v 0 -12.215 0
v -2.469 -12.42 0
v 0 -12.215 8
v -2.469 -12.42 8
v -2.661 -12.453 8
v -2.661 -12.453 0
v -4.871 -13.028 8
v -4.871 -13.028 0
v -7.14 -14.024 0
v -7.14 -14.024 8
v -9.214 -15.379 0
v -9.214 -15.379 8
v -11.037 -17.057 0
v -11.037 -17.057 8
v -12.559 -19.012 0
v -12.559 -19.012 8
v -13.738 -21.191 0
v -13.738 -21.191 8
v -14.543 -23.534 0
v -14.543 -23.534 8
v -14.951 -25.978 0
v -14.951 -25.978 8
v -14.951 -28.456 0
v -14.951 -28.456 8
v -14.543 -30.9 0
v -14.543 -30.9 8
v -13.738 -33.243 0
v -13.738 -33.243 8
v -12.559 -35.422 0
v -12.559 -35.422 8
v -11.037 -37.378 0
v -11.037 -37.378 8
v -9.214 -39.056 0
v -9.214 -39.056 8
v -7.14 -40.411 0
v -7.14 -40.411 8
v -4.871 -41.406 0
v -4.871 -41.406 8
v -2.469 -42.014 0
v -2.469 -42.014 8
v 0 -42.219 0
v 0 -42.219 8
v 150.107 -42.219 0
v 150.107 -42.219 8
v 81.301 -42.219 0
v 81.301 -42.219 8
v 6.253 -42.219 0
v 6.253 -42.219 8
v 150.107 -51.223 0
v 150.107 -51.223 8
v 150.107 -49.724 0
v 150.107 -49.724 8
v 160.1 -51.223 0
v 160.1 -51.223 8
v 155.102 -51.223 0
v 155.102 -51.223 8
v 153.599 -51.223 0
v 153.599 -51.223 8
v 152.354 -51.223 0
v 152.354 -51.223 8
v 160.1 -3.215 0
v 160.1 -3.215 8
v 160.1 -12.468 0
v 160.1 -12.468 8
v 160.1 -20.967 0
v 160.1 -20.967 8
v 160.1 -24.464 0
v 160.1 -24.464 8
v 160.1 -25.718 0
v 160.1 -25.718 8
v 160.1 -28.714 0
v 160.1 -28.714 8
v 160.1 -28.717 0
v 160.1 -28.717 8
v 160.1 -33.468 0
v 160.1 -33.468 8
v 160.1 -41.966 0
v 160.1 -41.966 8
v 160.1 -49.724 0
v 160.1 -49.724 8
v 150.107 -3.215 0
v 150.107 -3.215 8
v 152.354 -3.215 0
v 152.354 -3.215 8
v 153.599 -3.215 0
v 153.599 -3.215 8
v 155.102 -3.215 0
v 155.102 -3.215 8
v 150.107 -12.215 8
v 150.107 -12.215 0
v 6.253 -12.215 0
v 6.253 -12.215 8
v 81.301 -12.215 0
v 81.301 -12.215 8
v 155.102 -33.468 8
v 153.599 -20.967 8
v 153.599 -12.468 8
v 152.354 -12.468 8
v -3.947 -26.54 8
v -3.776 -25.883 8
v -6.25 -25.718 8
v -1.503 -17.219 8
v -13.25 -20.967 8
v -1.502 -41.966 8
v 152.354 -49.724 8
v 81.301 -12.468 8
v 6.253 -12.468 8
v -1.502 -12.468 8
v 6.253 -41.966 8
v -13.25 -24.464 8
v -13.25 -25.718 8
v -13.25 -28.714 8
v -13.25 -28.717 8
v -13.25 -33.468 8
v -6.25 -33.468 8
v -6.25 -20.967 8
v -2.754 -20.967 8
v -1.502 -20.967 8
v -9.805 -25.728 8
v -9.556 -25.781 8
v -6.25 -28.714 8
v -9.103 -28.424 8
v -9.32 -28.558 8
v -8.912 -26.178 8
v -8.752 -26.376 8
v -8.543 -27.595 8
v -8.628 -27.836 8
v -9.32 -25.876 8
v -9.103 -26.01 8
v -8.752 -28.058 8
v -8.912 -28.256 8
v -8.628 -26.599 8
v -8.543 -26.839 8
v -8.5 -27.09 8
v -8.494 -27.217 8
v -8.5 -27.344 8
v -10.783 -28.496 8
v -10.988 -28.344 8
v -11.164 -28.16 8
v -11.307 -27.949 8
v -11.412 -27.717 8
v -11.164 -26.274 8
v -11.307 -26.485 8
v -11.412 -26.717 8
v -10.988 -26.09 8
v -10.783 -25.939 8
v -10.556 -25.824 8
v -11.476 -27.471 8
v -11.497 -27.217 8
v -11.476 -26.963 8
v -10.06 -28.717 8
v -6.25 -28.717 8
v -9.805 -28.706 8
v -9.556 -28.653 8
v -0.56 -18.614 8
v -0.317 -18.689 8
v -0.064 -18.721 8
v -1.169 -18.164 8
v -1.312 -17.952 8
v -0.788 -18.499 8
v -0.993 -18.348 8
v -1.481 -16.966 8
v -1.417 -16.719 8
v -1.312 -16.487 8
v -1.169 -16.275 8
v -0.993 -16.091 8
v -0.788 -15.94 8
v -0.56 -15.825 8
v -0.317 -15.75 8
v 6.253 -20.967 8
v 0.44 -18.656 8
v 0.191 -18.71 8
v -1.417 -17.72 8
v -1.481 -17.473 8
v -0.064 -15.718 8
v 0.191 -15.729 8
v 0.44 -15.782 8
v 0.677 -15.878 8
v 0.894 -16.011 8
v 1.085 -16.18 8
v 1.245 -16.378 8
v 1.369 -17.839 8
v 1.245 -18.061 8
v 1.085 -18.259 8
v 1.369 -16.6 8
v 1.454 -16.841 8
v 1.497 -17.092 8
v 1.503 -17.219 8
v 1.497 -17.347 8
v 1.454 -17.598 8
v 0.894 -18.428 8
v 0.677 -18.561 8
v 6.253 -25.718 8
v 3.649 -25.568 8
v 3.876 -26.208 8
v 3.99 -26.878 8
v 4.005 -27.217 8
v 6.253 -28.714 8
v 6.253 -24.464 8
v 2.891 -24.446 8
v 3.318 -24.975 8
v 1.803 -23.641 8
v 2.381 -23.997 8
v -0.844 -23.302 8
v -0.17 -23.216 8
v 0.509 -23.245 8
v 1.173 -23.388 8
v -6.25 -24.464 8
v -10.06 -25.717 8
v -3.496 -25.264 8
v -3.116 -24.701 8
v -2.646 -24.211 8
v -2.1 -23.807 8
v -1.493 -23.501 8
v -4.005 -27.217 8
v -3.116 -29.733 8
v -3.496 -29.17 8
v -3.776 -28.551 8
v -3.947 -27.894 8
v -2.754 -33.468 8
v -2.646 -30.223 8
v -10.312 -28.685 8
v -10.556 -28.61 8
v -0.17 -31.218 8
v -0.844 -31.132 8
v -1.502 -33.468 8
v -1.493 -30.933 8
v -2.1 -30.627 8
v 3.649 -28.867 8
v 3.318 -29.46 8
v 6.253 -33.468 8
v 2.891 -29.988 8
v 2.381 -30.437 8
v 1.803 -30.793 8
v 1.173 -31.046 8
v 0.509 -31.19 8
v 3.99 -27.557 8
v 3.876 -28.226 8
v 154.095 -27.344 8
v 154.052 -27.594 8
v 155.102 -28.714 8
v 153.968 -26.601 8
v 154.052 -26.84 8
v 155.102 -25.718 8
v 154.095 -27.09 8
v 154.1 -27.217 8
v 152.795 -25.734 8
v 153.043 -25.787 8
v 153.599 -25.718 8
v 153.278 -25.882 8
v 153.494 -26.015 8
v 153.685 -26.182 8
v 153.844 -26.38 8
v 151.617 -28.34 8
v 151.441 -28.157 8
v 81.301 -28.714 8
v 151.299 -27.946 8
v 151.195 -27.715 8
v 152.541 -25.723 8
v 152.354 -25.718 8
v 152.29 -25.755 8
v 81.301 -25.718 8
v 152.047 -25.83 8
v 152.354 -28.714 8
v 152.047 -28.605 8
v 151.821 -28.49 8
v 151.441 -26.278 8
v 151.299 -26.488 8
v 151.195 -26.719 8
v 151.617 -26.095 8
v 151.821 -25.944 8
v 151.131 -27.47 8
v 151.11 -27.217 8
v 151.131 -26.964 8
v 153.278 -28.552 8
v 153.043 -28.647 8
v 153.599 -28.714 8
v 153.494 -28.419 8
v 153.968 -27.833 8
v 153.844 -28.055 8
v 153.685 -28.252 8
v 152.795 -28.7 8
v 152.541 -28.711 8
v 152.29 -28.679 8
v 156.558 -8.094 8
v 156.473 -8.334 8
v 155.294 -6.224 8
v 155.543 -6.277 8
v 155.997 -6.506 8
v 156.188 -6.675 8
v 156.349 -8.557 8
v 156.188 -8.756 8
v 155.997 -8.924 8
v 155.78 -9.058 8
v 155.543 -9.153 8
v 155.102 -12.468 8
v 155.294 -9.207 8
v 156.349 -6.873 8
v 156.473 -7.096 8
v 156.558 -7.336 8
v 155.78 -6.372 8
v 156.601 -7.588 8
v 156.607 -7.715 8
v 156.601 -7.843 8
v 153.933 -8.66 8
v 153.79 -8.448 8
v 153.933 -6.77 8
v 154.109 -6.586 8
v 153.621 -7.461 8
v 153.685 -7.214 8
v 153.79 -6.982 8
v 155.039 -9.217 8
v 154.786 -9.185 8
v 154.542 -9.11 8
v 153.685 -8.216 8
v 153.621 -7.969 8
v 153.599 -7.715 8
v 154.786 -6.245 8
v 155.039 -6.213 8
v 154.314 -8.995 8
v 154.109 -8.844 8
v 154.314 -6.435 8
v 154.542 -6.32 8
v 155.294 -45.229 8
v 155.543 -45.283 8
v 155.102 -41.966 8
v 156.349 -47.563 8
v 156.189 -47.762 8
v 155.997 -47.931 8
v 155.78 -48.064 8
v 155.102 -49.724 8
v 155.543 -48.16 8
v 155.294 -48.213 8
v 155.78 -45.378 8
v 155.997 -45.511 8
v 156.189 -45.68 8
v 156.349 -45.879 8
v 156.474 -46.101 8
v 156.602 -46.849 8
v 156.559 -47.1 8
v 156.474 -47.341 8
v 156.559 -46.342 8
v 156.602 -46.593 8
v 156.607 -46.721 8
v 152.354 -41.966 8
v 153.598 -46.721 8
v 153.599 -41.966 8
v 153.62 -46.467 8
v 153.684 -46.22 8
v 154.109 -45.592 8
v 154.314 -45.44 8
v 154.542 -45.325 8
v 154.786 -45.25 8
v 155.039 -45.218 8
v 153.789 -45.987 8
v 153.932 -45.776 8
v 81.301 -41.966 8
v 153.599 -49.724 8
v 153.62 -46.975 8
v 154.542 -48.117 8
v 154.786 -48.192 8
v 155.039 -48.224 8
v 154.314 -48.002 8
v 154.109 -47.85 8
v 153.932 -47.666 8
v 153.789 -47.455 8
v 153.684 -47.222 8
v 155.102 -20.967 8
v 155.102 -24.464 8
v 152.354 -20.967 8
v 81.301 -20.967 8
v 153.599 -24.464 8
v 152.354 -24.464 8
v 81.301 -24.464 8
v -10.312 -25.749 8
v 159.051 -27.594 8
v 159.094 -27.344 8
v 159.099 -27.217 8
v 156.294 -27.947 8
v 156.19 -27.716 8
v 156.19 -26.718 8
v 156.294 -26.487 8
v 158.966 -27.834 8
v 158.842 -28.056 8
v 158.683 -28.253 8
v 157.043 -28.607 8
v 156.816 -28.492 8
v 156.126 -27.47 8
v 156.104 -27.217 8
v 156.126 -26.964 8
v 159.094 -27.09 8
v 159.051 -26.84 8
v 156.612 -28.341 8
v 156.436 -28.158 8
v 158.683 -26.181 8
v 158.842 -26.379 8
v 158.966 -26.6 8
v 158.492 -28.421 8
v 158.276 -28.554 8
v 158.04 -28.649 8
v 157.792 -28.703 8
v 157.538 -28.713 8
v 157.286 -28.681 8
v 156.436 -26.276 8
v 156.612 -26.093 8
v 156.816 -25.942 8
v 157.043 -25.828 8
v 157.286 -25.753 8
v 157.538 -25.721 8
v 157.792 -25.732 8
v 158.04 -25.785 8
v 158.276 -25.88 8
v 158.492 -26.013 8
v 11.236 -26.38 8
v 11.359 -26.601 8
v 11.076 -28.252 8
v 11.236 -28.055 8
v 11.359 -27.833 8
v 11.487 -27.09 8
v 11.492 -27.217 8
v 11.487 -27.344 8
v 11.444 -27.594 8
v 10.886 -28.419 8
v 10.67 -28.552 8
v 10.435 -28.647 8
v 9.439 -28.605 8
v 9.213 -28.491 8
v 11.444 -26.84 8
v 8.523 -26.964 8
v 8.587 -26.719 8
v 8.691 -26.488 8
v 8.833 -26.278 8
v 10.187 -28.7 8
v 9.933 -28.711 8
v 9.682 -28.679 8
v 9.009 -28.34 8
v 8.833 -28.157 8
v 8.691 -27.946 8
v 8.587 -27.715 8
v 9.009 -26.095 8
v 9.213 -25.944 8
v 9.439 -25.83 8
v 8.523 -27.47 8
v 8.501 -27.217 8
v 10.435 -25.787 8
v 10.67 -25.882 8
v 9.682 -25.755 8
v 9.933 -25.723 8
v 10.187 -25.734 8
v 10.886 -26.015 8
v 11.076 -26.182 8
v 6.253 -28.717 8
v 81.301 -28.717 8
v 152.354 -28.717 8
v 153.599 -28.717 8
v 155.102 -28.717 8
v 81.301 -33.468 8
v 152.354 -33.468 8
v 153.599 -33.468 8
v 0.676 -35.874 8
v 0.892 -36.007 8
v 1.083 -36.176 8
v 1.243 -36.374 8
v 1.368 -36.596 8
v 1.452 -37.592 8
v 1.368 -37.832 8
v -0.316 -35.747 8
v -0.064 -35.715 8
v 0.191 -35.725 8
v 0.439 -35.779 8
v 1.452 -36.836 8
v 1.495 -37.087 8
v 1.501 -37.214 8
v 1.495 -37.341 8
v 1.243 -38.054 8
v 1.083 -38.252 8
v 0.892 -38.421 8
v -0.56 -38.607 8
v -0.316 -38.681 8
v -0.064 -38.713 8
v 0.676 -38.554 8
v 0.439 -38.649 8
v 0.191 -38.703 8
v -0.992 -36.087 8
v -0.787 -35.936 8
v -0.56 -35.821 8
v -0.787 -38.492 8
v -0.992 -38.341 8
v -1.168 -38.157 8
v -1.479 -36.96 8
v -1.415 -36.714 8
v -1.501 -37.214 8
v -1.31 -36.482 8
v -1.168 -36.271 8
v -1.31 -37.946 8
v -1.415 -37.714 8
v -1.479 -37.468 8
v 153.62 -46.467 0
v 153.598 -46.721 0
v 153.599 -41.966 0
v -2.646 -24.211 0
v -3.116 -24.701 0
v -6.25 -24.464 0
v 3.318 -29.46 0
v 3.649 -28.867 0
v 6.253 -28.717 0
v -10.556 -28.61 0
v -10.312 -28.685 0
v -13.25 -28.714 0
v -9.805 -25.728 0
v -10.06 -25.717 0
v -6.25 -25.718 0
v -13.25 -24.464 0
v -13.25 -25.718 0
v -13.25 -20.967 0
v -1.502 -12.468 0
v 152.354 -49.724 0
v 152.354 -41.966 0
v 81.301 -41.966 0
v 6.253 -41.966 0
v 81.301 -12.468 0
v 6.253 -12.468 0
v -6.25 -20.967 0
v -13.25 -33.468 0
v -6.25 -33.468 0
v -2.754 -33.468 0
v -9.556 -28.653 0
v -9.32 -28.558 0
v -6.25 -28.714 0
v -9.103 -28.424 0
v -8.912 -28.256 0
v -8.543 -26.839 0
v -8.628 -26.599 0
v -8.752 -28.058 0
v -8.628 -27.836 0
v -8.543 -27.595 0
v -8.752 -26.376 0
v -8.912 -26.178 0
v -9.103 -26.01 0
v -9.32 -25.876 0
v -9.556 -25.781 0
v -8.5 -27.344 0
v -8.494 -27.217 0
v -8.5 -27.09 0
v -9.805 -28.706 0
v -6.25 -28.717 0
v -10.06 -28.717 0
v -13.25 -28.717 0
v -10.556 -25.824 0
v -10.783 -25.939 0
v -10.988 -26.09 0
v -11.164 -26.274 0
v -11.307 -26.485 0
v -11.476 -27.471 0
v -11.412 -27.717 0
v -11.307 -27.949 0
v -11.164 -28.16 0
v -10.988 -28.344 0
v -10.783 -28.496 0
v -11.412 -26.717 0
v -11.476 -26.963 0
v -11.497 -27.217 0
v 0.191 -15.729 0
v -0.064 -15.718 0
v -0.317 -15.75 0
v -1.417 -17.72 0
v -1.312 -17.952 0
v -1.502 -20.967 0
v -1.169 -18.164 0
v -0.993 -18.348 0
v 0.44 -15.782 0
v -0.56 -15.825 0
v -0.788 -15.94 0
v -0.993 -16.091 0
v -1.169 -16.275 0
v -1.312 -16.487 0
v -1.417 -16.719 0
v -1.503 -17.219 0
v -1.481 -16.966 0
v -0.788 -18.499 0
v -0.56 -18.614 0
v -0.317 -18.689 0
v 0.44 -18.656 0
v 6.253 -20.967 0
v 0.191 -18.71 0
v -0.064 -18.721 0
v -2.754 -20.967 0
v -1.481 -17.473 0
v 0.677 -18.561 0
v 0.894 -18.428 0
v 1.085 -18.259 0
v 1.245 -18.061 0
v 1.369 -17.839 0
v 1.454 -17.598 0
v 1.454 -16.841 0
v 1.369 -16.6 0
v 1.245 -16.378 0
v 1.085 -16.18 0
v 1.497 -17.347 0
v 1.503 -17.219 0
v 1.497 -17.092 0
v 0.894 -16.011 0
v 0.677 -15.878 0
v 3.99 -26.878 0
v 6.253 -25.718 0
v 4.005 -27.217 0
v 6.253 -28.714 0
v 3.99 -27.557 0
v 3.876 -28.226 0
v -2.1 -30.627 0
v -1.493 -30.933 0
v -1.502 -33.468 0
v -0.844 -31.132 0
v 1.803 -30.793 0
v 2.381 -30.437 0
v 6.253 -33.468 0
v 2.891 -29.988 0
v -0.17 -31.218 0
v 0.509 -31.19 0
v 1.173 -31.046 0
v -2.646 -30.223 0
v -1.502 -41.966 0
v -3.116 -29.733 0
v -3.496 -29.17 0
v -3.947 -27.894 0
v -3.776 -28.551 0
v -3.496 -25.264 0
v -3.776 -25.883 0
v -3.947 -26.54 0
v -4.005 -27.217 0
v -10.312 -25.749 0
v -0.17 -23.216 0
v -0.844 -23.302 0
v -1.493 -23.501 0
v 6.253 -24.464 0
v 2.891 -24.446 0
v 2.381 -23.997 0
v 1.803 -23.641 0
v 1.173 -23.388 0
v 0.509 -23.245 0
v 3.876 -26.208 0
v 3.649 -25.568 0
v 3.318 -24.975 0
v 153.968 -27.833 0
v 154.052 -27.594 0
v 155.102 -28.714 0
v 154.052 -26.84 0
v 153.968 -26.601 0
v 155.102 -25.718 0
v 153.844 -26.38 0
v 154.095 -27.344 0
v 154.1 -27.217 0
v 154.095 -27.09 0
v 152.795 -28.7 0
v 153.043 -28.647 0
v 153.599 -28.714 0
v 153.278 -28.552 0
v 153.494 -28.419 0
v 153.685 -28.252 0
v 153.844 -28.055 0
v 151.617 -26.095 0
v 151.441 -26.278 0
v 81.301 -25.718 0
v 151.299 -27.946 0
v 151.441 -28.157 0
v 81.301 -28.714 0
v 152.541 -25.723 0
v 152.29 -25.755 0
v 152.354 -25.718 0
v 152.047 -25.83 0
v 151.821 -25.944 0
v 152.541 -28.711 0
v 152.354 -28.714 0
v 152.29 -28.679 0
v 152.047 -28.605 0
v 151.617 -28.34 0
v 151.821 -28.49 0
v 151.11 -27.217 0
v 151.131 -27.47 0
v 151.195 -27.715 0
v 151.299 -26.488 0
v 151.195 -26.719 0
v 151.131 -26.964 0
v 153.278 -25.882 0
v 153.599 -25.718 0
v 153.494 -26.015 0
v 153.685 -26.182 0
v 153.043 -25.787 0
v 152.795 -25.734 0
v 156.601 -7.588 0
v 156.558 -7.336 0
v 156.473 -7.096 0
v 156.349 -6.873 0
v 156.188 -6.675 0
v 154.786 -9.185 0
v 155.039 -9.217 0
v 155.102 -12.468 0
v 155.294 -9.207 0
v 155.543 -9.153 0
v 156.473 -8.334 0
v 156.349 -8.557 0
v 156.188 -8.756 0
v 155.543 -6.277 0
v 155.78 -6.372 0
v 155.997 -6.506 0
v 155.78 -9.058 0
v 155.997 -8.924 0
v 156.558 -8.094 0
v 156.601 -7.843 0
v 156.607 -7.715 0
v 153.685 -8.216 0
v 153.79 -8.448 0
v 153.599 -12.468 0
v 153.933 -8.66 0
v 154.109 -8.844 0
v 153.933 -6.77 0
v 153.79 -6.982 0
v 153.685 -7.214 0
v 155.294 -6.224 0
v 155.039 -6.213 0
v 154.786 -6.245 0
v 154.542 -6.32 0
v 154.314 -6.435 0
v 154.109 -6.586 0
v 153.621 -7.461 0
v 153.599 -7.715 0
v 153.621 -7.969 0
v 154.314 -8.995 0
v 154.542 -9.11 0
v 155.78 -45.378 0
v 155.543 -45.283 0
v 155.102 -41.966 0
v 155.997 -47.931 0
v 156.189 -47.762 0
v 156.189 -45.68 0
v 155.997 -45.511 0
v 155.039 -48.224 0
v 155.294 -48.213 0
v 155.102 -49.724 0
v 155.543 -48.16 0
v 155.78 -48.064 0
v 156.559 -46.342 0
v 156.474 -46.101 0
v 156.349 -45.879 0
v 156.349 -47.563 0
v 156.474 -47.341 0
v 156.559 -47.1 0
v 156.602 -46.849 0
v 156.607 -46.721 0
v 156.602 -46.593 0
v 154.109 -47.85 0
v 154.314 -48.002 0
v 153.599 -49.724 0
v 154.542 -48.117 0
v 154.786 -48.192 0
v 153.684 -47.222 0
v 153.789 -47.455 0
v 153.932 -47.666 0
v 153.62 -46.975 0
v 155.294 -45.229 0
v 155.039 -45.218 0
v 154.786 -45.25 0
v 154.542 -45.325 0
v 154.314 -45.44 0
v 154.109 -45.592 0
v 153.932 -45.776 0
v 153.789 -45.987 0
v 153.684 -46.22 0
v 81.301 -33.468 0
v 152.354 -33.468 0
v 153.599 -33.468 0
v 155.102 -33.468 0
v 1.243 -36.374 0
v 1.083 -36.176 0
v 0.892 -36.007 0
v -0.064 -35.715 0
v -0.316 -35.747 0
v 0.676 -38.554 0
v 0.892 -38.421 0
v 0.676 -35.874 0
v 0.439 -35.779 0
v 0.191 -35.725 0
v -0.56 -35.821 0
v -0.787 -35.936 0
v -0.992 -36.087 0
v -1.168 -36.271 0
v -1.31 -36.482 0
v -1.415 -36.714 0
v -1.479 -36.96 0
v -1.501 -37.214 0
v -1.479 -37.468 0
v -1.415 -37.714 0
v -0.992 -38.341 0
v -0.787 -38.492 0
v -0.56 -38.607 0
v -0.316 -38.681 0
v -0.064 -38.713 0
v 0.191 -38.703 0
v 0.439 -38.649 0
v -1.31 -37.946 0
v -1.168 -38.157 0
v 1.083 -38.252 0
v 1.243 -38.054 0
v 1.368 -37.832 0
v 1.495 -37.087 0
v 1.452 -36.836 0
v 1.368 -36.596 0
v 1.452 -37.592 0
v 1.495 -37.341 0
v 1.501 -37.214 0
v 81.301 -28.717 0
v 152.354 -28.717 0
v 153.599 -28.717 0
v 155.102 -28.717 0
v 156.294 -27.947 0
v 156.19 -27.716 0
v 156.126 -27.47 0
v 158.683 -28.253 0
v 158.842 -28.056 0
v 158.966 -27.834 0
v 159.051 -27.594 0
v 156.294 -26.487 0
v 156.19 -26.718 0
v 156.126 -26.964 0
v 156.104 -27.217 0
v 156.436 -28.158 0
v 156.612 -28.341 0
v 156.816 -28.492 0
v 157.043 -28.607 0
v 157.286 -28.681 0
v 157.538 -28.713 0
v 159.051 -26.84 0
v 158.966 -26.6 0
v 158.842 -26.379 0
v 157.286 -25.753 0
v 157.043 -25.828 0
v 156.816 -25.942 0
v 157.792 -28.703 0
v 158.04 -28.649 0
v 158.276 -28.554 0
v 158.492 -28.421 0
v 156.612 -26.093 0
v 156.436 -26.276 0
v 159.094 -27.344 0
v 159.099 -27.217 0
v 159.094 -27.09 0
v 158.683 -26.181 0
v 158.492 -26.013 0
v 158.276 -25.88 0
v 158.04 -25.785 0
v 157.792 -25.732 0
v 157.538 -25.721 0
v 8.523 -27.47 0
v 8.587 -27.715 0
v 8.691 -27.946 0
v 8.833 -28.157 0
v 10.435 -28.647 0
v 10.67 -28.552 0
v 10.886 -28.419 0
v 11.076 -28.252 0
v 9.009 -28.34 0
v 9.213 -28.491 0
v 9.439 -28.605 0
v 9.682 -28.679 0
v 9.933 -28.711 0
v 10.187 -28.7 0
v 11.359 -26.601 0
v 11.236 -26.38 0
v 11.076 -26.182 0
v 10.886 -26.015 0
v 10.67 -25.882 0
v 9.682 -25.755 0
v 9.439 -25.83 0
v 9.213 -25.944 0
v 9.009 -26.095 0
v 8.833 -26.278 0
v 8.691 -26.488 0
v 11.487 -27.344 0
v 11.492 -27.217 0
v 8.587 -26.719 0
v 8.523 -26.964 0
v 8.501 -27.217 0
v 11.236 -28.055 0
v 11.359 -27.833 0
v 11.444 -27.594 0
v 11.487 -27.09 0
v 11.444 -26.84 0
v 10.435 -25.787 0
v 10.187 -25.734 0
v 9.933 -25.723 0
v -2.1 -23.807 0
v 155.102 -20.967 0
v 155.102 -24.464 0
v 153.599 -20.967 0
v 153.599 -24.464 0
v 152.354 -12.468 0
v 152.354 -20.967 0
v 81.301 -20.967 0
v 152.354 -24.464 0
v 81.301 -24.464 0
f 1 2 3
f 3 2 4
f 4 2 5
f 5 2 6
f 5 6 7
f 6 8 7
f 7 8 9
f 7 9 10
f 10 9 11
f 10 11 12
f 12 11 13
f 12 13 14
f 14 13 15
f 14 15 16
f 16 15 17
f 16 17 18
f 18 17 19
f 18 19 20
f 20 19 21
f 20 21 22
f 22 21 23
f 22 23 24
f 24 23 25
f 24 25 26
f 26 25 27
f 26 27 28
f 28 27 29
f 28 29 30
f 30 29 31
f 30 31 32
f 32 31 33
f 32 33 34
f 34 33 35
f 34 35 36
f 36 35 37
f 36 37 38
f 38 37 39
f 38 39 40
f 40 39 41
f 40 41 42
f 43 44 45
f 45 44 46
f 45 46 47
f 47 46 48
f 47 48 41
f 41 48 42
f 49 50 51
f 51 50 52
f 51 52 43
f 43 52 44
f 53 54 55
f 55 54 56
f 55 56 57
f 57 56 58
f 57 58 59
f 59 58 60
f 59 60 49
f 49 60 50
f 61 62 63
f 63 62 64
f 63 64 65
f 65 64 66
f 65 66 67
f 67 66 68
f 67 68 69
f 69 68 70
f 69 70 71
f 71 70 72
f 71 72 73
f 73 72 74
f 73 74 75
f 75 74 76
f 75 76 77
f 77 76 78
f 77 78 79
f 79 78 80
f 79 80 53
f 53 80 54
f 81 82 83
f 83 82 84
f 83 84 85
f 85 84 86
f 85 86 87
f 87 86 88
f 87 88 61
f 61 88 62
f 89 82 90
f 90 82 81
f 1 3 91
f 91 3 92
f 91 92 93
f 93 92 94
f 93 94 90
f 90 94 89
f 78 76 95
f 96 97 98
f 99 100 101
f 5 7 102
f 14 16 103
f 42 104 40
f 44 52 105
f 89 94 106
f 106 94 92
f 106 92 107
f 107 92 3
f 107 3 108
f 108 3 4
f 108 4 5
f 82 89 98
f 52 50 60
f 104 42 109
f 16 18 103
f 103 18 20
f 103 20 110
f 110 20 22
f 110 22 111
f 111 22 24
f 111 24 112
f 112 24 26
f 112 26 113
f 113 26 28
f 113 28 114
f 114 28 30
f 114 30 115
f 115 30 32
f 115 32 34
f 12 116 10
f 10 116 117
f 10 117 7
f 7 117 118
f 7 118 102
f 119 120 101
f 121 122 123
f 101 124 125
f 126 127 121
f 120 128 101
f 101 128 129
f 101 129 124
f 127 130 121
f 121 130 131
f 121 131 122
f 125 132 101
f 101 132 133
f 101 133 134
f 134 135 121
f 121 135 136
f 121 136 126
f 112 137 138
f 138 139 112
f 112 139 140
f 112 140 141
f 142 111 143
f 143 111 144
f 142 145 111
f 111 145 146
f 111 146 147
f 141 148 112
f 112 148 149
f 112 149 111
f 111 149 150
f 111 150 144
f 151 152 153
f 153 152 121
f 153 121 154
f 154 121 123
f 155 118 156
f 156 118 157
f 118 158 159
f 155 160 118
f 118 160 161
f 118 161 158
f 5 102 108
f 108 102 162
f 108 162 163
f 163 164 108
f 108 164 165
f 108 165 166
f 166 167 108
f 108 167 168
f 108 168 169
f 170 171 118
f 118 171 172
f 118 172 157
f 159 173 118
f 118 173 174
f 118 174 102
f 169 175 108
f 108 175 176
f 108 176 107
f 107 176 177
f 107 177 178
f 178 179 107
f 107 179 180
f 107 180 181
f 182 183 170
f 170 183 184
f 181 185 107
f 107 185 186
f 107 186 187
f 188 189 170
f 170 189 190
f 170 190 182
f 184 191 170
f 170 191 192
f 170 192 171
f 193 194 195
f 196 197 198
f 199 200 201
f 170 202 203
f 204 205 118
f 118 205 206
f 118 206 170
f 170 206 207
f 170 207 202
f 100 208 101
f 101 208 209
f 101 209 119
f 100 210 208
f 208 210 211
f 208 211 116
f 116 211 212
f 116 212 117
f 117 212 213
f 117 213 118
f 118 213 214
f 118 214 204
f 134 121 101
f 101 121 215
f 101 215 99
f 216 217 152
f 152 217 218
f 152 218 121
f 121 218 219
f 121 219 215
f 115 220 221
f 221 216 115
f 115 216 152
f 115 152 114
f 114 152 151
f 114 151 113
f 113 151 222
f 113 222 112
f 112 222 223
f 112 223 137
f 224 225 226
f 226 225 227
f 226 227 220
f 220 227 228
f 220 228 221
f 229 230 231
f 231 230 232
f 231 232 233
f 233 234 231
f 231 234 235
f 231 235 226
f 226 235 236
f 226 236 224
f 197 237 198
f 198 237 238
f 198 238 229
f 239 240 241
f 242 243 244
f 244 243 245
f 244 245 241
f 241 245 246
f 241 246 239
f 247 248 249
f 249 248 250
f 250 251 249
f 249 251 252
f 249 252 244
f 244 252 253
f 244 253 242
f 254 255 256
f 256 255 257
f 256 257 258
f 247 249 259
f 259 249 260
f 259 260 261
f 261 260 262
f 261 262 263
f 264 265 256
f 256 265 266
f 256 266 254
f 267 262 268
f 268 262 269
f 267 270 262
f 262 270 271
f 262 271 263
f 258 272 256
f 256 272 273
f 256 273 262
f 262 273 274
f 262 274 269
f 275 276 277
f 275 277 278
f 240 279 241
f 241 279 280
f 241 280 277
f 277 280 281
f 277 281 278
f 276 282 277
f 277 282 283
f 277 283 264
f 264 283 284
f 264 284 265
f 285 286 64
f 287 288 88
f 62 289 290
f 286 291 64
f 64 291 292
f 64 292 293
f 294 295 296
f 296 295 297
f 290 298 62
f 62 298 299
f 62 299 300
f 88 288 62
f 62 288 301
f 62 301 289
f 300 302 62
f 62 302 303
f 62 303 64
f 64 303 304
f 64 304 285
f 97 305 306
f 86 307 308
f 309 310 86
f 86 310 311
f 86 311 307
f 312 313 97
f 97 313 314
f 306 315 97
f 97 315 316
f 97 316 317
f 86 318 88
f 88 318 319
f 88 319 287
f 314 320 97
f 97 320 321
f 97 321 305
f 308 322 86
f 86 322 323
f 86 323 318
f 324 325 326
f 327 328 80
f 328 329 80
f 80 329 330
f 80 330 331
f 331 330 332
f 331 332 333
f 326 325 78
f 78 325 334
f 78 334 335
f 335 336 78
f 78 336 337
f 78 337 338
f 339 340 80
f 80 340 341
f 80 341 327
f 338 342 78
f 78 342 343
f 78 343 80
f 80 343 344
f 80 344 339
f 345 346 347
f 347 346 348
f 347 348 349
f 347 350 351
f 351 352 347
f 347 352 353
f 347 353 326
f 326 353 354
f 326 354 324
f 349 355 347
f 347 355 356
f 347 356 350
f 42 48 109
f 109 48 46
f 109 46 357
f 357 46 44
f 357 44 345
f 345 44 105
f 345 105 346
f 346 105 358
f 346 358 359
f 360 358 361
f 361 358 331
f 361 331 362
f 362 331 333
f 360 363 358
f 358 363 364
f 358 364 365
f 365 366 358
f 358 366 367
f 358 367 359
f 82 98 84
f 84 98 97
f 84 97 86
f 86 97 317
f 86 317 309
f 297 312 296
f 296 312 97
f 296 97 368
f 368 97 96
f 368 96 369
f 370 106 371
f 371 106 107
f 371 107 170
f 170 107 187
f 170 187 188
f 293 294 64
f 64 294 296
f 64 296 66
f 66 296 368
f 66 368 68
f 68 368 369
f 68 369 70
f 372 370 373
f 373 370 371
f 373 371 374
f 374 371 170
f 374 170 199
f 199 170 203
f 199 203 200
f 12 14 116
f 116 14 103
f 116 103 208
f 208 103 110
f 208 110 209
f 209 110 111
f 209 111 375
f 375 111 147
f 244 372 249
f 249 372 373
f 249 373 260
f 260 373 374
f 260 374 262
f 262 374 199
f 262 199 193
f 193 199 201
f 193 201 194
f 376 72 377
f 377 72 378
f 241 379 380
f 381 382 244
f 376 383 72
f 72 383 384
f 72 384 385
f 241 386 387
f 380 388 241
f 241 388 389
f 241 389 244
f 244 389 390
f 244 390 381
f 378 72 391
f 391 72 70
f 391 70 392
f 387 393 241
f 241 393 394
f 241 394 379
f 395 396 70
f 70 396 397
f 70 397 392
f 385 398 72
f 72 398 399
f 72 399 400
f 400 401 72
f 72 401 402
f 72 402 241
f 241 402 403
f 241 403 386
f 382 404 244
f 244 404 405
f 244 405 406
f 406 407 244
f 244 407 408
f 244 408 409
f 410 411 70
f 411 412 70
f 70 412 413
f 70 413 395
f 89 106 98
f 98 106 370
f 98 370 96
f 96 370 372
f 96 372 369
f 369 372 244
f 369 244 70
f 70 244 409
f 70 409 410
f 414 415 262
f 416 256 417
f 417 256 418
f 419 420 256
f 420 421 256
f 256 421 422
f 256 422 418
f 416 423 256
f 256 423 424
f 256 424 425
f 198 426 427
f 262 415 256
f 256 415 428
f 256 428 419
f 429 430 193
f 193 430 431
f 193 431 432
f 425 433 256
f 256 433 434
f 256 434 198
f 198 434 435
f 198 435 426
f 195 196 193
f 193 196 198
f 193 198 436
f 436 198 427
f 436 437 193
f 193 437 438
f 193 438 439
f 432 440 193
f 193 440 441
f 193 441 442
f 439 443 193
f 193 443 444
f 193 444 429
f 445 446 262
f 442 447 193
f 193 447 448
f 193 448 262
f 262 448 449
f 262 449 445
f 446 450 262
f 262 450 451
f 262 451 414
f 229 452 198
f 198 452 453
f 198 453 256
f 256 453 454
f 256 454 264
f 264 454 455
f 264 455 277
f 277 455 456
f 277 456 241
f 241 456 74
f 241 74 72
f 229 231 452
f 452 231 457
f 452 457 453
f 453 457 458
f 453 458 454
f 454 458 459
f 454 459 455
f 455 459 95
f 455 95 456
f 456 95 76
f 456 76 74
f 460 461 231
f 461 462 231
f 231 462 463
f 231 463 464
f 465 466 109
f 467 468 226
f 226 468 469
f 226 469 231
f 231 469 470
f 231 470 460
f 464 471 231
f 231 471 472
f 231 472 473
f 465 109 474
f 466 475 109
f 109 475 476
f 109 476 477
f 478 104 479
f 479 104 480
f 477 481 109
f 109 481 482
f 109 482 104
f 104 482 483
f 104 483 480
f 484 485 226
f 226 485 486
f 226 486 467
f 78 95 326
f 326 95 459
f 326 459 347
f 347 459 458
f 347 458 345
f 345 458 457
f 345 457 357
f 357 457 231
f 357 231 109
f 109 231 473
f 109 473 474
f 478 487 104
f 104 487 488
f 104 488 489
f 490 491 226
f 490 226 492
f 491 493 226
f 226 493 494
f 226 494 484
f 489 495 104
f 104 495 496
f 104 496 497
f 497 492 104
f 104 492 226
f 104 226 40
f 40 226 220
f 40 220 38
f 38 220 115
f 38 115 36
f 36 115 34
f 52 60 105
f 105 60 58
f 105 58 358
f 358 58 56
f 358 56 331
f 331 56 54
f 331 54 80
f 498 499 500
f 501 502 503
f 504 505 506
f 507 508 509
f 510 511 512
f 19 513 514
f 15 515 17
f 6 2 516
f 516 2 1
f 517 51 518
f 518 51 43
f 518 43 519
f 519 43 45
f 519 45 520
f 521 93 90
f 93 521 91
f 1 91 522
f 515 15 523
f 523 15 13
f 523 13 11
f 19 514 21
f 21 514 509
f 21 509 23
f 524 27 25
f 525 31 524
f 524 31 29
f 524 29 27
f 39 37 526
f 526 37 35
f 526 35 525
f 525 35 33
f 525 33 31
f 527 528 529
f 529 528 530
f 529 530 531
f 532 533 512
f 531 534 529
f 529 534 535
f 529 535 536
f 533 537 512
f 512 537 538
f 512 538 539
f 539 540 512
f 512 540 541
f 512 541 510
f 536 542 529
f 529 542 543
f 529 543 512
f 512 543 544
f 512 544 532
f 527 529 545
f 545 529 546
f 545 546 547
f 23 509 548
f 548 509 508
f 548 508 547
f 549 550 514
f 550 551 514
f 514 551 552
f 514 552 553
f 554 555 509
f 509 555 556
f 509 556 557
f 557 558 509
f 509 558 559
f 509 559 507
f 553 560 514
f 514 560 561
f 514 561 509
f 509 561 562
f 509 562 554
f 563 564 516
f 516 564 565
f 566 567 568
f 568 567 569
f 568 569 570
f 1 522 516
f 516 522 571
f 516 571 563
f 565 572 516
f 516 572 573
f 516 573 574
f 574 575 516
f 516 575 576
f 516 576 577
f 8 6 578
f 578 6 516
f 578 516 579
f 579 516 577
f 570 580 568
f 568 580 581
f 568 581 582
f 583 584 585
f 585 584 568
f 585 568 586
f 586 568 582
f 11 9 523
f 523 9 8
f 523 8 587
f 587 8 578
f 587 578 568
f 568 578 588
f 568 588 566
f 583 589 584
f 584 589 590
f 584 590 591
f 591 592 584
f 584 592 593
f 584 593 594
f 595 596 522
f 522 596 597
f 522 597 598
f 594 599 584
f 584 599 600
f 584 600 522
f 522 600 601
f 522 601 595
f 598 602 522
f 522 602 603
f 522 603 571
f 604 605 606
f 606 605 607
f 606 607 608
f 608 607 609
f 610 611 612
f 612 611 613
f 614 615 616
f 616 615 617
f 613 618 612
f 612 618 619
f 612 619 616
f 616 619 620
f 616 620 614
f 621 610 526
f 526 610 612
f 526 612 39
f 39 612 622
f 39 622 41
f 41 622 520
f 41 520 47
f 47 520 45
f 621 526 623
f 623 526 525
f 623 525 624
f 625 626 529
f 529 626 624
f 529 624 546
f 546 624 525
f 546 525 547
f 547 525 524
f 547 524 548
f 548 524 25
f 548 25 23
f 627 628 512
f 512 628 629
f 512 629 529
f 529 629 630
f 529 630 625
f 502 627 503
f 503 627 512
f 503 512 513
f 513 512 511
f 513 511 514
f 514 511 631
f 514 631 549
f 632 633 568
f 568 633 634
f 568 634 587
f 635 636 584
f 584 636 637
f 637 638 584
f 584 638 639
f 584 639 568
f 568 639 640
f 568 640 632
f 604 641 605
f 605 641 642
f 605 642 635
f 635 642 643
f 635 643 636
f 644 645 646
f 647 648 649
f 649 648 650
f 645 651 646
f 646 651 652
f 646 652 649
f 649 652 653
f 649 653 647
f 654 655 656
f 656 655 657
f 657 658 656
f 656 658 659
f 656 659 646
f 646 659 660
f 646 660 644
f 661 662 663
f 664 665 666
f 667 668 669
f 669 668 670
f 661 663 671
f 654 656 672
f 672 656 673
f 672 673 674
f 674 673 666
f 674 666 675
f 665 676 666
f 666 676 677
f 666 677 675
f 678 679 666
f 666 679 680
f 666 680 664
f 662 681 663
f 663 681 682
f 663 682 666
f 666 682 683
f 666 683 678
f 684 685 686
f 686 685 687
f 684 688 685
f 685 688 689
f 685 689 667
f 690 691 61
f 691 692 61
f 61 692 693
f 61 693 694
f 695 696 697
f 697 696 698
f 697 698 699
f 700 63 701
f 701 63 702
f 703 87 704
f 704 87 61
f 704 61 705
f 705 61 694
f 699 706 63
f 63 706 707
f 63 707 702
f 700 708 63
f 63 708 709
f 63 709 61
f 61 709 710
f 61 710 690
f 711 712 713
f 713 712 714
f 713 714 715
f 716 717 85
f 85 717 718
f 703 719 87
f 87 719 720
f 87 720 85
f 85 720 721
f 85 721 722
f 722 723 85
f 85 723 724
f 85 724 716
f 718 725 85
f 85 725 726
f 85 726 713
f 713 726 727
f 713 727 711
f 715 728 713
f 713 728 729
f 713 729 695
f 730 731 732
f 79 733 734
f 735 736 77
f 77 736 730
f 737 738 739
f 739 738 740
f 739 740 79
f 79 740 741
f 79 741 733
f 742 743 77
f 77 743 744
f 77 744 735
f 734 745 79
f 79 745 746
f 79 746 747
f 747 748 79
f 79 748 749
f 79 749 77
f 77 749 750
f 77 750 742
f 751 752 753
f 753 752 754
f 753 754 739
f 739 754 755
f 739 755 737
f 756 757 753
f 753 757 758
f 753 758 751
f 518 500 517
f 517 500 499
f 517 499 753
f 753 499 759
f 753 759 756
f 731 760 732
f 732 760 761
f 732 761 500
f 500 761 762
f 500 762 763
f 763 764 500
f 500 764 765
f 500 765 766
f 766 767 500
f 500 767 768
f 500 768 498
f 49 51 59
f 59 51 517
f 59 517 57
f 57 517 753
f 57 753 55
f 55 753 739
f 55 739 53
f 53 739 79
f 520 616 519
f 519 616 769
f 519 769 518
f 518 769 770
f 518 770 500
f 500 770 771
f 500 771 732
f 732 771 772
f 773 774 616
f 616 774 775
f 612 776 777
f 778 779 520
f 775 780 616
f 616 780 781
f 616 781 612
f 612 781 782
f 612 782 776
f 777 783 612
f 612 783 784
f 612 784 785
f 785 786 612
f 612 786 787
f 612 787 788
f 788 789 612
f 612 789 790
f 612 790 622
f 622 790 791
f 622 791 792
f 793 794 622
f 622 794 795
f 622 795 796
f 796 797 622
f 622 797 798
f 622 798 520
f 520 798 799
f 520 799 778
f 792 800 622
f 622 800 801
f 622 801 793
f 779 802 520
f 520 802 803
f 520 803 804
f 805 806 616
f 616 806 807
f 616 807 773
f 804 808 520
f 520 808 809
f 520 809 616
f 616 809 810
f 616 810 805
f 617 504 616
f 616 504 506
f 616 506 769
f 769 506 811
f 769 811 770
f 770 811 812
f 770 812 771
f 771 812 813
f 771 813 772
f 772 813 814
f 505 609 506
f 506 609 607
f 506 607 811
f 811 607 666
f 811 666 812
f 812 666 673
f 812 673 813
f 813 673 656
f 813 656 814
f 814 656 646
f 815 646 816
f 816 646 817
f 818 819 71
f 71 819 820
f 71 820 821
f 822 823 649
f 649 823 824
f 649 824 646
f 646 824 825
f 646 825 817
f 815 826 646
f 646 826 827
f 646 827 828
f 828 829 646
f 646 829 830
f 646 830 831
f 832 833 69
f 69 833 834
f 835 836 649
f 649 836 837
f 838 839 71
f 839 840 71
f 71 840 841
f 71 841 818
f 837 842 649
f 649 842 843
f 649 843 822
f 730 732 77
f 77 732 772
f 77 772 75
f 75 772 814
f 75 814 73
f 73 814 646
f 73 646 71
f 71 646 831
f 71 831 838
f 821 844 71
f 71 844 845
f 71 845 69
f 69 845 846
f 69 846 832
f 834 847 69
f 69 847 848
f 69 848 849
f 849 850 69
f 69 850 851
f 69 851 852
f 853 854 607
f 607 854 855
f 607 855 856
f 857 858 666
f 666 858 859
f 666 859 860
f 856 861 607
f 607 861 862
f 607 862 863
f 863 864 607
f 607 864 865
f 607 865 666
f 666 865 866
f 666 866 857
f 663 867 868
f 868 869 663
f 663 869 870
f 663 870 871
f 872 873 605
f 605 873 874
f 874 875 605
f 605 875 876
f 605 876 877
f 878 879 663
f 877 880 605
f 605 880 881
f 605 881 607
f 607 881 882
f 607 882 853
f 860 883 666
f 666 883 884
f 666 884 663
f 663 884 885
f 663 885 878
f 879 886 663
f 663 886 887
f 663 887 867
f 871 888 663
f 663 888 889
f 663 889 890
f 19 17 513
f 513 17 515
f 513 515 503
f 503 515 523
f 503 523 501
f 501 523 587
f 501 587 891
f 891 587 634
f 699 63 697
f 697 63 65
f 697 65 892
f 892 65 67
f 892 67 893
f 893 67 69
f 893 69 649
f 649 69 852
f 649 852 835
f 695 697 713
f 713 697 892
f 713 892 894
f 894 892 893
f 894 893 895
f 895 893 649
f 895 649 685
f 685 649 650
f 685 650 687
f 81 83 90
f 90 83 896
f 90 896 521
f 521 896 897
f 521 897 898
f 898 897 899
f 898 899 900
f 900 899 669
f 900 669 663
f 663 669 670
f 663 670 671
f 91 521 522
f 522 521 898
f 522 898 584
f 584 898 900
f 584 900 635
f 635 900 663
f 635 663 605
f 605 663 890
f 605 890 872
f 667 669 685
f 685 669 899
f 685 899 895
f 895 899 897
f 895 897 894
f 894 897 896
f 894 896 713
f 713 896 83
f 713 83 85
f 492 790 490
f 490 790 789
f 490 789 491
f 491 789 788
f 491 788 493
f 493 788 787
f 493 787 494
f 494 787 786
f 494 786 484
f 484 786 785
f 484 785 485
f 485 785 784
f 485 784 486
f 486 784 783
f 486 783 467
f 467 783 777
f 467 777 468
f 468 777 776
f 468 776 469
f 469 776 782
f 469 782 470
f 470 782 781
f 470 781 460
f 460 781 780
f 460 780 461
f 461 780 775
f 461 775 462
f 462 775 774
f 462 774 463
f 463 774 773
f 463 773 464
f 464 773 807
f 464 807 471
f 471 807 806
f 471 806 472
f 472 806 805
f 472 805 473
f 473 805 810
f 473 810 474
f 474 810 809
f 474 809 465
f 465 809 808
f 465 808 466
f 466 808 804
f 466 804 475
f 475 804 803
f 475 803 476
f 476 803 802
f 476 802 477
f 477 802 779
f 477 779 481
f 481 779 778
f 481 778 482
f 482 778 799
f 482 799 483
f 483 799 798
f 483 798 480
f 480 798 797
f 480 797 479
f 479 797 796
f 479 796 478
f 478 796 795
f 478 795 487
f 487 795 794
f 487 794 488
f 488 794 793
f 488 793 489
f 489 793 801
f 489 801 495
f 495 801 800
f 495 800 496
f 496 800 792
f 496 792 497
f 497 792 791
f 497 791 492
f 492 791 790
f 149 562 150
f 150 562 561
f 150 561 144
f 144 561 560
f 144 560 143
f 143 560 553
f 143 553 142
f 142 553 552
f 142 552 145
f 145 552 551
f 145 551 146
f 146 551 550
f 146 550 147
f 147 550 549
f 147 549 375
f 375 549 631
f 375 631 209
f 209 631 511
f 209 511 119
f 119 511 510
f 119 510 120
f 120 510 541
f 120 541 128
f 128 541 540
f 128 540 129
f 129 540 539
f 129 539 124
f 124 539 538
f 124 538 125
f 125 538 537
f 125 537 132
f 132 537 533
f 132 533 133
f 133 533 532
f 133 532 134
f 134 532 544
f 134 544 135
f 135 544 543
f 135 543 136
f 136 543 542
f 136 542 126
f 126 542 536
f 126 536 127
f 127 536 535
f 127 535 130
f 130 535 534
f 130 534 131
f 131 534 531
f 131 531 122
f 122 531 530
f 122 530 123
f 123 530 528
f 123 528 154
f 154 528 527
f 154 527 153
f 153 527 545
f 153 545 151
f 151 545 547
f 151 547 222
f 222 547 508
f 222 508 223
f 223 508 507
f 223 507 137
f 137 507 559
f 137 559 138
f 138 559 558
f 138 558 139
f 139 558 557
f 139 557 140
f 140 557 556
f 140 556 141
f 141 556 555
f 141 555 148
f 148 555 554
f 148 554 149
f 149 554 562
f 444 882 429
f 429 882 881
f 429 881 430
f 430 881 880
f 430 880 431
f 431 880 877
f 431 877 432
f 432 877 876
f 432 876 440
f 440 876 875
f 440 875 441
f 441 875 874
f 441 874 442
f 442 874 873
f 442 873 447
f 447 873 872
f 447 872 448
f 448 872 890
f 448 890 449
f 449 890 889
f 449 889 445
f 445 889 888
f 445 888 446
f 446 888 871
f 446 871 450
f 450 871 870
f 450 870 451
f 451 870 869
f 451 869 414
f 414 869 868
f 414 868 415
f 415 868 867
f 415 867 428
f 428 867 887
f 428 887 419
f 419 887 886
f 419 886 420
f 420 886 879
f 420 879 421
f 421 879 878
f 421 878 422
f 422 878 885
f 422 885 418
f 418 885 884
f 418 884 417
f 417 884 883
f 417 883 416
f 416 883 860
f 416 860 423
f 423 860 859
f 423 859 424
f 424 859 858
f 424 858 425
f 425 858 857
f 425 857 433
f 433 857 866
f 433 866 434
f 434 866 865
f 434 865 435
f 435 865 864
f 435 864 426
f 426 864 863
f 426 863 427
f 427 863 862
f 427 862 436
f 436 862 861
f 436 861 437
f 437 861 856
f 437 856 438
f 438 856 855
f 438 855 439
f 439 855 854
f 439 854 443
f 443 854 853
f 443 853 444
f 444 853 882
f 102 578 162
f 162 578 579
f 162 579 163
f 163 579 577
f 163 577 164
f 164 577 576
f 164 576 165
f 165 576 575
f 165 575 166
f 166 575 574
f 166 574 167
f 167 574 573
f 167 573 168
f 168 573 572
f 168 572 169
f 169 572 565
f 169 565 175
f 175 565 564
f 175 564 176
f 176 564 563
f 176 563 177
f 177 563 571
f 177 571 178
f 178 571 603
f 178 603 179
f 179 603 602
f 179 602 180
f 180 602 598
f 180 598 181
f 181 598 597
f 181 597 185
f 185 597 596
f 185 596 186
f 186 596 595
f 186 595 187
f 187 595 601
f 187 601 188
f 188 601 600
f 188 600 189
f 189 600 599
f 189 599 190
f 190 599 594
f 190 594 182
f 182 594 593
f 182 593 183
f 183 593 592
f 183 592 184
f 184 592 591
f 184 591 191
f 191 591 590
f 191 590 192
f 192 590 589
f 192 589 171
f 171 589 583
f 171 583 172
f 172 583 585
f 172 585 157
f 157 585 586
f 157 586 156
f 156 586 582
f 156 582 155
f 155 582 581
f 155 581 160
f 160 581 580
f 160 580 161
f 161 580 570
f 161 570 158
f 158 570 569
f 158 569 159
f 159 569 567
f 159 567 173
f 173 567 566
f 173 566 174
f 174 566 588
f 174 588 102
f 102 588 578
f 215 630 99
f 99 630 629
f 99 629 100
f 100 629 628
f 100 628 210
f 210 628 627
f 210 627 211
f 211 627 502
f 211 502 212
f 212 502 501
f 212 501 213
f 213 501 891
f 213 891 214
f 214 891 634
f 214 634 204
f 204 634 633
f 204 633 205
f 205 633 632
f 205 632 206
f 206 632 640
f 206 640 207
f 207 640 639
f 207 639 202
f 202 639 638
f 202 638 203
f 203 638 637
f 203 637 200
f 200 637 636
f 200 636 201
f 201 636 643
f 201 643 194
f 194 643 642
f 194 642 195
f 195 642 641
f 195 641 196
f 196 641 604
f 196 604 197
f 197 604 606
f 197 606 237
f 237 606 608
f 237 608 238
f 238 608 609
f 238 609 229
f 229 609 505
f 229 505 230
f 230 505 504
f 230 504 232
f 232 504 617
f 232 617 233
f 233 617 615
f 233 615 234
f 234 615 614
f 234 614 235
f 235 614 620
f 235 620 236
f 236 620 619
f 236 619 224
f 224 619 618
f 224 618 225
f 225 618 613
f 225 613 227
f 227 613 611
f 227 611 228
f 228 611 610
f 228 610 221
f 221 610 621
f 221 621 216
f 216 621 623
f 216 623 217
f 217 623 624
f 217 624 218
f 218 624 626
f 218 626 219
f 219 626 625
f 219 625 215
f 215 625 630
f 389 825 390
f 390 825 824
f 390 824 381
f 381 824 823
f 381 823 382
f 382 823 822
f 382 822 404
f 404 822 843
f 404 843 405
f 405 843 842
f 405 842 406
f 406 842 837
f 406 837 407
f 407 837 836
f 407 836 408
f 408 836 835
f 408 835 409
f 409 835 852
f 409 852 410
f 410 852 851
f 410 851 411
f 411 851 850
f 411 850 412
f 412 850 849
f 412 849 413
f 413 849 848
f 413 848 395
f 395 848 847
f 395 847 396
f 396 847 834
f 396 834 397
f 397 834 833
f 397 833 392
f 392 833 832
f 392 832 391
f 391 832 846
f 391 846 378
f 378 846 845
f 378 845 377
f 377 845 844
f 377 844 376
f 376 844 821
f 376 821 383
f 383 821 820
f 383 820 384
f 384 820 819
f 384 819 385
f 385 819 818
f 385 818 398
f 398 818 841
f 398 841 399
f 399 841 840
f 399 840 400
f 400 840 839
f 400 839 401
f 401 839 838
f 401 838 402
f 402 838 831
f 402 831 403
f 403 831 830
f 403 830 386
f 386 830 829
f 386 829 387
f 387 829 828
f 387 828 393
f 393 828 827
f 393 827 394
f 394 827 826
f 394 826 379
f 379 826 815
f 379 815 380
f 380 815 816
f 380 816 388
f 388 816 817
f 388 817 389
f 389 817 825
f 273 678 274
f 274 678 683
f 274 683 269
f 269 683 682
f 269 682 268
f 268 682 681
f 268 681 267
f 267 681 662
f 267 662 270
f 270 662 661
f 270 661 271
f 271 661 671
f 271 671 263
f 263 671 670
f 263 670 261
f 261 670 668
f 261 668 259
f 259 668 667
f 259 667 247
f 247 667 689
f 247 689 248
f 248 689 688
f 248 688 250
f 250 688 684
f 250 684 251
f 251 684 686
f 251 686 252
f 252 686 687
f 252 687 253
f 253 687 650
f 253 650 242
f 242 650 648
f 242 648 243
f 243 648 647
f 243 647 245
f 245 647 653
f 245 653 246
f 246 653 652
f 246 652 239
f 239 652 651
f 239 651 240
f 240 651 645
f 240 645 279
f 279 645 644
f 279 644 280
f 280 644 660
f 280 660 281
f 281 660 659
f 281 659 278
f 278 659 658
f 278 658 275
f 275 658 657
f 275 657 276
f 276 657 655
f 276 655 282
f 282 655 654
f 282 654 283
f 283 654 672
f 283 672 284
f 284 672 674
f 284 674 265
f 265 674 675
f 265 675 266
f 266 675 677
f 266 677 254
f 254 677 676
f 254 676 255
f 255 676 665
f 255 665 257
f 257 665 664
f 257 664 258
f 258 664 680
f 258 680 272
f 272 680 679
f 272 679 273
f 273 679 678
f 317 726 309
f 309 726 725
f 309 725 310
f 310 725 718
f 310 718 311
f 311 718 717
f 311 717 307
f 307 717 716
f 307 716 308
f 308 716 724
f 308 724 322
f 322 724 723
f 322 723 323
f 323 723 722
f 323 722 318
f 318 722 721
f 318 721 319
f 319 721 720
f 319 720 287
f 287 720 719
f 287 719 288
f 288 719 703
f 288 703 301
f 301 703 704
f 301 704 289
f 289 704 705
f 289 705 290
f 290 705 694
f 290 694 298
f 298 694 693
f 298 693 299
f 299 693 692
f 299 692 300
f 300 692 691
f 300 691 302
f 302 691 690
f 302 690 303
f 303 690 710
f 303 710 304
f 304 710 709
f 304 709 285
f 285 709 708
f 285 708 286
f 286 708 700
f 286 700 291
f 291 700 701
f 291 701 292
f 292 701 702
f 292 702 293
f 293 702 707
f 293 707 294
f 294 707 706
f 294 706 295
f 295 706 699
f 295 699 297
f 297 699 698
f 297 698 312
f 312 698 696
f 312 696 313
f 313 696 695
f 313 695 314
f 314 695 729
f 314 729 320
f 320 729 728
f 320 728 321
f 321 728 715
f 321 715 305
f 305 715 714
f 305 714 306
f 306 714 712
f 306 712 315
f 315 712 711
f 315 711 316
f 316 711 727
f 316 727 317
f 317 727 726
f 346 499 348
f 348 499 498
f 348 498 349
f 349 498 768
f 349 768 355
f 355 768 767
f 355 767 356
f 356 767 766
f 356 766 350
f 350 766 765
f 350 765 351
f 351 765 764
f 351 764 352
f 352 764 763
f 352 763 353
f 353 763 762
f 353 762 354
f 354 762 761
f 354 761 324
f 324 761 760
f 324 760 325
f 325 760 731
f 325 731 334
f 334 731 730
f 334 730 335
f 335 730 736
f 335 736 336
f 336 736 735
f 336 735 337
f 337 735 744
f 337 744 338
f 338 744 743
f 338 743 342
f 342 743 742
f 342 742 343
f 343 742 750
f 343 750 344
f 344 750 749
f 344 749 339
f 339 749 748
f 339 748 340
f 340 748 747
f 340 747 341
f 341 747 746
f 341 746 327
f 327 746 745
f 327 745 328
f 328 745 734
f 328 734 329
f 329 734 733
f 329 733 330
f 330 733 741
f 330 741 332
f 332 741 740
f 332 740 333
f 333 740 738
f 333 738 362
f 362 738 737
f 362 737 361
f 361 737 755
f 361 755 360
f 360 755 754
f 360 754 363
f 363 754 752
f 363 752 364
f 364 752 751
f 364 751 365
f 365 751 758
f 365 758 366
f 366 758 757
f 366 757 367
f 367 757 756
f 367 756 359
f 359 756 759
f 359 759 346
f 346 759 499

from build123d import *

# Parameters (mm, degrees)
BOSS_EXTRUDE1_DEPTH     = 8
CUT_EXTRUDE6_DEPTH      = 169.285043392
CUT_EXTRUDE6_DEPTH_BACK = 8
SKETCH6_R               = 4.004848267
SKETCH6_R_2             = 1.500740619
SKETCH6_R_3             = 1.502884449
SKETCH6_R_4             = 1.495453733
SKETCH6_R_5             = 1.501499852
SKETCH6_R_6             = 1.504449493
SKETCH6_R_7             = 1.503694776
SKETCH6_R_8             = 1.495371025
SKETCH6_R_9             = 1.497490914


with BuildPart() as part:
    # Sketch5 → Boss-Extrude1 (new body)
    with BuildSketch(Plane.XY):
        with BuildLine():
            Line((0, -42.218893529), (150.106998899, -42.218893529))
            Line((150.106998899, -42.218893529), (150.106998899, -51.223119472))
            Line((150.106998899, -51.223119472), (155.102889251, -51.223119472))
            Line((155.102889251, -51.223119472), (160.100118241, -51.223119472))
            Line((160.100118241, -51.223119472), (160.100118241, -3.214680099))
            Line((160.100118241, -3.214680099), (155.102889251, -3.214680099))
            Line((155.102889251, -3.214680099), (150.106998899, -3.214680099))
            Line((150.106998899, -3.214680099), (150.106998899, -12.215396897))
            Line((150.106998899, -12.215396897), (0, -12.215396897))
            ThreePointArc((0, -12.215396897), (-15.001748316, -27.217145213), (0, -42.218893529))
        make_face()
    extrude(amount=BOSS_EXTRUDE1_DEPTH)

    # Sketch6 → Cut-Extrude6 (cut, two sides: drawn at the far end of the back side and taken through both)
    with BuildSketch(Plane.XY.offset(-CUT_EXTRUDE6_DEPTH_BACK)):
        with Locations((0, -27.217145213)):
            Circle(SKETCH6_R)
        with Locations((0, -37.213991998)):
            Circle(SKETCH6_R_2)
        with Locations((0, -17.219491861)):
            Circle(SKETCH6_R_3)
        with Locations((9.996605481, -27.217145213)):
            Circle(SKETCH6_R_4)
        with Locations((-9.995878708, -27.217145213)):
            Circle(SKETCH6_R_5)
        with Locations((155.102889251, -46.721006501)):
            Circle(SKETCH6_R_6)
        with Locations((155.102889251, -7.715038498)):
            Circle(SKETCH6_R_7)
        with Locations((152.604944075, -27.217145213)):
            Circle(SKETCH6_R_8)
        with Locations((157.601503746, -27.217145213)):
            Circle(SKETCH6_R_9)
    extrude(amount=CUT_EXTRUDE6_DEPTH + CUT_EXTRUDE6_DEPTH_BACK, mode=Mode.SUBTRACT)


solid = part.part
